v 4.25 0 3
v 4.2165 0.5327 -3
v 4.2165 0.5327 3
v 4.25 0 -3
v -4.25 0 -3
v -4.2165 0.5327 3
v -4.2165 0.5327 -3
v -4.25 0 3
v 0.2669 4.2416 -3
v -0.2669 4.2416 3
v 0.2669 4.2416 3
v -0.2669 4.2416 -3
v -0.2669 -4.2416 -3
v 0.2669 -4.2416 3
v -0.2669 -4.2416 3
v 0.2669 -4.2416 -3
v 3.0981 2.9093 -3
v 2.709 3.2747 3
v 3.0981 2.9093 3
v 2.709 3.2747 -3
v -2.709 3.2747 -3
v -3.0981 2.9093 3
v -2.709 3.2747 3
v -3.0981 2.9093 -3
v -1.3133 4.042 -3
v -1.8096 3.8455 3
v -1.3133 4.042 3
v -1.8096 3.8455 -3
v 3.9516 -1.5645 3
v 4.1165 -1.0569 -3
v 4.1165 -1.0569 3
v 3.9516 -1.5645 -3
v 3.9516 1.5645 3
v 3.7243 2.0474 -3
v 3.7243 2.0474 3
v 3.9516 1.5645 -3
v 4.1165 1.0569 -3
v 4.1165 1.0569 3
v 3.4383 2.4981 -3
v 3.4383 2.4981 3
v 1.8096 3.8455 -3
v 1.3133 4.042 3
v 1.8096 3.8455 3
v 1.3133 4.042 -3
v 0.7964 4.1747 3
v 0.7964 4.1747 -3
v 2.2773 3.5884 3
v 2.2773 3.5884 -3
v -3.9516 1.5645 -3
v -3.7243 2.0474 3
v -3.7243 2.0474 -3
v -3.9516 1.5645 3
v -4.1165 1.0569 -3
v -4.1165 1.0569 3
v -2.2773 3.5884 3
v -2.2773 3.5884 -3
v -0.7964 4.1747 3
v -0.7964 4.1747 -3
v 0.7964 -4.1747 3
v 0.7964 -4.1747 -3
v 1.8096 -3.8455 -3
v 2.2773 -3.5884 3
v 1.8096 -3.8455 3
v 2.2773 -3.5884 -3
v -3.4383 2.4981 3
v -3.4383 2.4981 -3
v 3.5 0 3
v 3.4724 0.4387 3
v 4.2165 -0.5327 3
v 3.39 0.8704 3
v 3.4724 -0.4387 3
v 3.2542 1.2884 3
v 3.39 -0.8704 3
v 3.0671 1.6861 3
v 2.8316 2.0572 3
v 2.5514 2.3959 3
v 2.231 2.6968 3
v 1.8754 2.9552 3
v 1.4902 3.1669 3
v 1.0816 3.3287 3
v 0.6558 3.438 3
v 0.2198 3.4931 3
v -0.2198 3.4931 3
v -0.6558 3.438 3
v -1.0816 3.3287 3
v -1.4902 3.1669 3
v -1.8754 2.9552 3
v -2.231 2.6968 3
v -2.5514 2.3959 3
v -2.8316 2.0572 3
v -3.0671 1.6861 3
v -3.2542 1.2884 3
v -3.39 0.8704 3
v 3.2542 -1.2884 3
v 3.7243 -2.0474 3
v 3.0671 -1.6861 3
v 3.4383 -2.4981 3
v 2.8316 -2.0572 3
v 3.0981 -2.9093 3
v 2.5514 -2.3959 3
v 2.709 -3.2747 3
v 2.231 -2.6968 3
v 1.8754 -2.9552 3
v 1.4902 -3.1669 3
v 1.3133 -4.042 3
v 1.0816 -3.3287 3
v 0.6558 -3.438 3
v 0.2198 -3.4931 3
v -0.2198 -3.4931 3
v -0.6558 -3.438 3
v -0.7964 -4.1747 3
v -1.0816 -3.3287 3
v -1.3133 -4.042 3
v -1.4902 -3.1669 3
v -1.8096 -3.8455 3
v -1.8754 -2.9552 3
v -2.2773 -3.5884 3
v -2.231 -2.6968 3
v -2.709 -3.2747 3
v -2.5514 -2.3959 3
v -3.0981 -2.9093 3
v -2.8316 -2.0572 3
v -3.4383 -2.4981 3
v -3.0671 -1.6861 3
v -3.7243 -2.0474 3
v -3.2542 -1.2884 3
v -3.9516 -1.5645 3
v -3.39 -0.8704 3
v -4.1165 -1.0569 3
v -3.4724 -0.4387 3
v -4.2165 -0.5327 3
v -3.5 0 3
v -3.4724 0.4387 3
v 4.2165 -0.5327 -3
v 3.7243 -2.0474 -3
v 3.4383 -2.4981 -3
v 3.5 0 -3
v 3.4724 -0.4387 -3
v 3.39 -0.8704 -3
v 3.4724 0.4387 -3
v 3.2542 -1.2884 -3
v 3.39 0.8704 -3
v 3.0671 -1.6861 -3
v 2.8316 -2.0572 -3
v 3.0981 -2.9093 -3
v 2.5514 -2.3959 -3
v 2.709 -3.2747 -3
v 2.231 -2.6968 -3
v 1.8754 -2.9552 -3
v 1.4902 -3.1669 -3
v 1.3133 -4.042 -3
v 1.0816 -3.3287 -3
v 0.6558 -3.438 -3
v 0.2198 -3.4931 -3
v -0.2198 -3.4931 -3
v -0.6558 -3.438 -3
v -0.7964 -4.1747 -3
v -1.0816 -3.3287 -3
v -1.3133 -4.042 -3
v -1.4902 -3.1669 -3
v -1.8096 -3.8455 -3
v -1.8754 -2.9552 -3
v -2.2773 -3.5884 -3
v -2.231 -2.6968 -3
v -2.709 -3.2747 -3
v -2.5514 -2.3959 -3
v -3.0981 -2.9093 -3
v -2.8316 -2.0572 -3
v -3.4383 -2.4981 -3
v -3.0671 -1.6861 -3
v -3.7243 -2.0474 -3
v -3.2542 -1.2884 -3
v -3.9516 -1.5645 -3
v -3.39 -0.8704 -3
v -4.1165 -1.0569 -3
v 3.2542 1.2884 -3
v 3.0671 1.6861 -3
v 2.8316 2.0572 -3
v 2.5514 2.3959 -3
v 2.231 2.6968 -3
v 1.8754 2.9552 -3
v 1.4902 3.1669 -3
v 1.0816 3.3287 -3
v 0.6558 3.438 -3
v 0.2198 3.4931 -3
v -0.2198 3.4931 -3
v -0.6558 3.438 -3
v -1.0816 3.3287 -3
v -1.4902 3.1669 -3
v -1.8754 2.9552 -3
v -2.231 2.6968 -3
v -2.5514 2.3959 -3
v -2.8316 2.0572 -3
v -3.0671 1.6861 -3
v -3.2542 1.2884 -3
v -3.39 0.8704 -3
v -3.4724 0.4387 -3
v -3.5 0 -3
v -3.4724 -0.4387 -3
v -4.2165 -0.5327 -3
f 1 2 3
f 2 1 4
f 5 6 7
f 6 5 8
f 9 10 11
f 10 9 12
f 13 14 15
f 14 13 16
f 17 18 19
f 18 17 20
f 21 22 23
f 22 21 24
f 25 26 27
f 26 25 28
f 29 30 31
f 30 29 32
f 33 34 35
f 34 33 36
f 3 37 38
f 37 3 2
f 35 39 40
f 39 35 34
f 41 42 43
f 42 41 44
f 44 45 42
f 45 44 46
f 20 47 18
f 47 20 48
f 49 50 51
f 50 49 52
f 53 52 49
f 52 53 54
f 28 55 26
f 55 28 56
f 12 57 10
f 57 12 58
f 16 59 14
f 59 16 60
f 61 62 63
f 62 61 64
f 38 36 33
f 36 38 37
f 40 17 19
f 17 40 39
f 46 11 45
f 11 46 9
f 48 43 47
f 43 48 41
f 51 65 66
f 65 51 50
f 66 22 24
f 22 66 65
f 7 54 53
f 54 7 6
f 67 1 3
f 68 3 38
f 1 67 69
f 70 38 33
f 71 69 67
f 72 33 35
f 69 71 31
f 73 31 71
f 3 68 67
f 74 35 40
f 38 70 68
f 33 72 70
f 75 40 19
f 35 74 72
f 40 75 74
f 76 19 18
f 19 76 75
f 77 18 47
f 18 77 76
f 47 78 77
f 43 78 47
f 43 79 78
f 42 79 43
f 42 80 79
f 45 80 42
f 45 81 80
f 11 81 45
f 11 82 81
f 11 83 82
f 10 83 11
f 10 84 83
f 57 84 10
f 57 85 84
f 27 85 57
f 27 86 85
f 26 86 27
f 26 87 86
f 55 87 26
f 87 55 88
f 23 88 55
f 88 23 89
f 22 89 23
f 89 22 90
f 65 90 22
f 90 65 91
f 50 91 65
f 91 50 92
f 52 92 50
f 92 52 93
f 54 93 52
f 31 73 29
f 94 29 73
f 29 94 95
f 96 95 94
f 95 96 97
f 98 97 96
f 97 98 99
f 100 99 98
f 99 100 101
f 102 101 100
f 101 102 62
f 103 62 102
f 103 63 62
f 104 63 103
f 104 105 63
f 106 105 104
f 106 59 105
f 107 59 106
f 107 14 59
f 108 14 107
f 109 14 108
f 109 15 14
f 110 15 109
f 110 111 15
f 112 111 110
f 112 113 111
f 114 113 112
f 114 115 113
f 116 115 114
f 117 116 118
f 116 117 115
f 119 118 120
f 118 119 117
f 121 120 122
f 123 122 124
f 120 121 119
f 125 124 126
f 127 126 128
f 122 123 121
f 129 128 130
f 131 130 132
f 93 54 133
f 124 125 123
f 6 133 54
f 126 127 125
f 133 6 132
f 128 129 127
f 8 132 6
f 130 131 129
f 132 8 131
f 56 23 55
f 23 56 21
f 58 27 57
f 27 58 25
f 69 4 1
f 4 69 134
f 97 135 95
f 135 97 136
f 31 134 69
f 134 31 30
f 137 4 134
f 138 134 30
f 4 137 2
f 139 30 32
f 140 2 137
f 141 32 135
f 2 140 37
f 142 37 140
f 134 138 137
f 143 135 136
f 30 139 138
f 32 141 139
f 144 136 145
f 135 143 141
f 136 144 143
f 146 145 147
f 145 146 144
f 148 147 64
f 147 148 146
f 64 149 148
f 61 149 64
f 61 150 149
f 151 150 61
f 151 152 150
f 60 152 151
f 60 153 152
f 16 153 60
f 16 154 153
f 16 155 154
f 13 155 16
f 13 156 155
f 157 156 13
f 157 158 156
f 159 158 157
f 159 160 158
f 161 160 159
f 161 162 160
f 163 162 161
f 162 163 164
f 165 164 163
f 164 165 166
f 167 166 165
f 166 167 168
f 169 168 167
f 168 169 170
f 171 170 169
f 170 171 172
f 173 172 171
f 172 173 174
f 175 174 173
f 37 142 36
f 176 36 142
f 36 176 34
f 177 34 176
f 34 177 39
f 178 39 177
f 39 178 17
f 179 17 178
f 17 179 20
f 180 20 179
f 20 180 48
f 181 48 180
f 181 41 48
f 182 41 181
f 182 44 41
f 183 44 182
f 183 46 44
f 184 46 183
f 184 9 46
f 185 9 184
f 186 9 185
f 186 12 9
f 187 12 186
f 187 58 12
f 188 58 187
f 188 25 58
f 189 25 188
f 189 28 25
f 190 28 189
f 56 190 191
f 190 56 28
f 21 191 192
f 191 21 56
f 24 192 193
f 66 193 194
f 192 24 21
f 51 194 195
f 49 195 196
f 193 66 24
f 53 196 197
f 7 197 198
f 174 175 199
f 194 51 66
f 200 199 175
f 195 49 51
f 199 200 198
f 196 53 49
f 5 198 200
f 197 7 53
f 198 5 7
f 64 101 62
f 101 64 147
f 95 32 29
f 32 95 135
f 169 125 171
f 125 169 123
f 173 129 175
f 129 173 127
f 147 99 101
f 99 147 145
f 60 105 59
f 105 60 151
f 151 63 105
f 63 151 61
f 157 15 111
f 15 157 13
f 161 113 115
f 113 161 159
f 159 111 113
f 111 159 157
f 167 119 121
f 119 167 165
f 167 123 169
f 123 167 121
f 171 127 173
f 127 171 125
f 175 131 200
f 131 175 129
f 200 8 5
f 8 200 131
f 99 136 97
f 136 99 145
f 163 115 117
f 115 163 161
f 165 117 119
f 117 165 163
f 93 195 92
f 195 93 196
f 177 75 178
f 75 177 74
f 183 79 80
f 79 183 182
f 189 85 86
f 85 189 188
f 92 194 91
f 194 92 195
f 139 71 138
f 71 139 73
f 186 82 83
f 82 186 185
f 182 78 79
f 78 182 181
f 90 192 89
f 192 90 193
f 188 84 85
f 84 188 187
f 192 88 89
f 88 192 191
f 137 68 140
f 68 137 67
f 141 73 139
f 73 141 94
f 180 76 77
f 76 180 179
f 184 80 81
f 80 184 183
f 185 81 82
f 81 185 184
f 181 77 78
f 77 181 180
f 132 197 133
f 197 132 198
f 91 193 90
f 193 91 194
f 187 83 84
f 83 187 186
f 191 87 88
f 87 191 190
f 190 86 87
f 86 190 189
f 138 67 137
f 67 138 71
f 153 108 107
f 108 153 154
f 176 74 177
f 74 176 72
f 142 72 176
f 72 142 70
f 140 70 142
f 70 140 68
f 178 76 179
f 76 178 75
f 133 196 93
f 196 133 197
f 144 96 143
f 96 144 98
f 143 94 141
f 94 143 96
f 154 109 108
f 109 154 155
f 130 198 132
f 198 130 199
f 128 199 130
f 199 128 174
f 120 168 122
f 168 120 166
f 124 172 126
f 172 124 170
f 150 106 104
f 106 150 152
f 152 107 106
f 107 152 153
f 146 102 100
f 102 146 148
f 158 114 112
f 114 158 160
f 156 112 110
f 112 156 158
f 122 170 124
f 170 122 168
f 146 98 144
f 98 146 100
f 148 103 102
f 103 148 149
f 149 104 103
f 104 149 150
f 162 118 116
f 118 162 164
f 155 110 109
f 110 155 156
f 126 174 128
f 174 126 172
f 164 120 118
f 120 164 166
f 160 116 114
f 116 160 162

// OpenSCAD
$fn = 50;


difference() {
	union() {
		translate(v = [0, 0, -3.0000000000]) {
			cylinder(h = 6, r = 4.2500000000);
		}
	}
	union() {
		translate(v = [0, 0, -100.0000000000]) {
			cylinder(h = 200, r = 3.5000000000);
		}
	}
}
